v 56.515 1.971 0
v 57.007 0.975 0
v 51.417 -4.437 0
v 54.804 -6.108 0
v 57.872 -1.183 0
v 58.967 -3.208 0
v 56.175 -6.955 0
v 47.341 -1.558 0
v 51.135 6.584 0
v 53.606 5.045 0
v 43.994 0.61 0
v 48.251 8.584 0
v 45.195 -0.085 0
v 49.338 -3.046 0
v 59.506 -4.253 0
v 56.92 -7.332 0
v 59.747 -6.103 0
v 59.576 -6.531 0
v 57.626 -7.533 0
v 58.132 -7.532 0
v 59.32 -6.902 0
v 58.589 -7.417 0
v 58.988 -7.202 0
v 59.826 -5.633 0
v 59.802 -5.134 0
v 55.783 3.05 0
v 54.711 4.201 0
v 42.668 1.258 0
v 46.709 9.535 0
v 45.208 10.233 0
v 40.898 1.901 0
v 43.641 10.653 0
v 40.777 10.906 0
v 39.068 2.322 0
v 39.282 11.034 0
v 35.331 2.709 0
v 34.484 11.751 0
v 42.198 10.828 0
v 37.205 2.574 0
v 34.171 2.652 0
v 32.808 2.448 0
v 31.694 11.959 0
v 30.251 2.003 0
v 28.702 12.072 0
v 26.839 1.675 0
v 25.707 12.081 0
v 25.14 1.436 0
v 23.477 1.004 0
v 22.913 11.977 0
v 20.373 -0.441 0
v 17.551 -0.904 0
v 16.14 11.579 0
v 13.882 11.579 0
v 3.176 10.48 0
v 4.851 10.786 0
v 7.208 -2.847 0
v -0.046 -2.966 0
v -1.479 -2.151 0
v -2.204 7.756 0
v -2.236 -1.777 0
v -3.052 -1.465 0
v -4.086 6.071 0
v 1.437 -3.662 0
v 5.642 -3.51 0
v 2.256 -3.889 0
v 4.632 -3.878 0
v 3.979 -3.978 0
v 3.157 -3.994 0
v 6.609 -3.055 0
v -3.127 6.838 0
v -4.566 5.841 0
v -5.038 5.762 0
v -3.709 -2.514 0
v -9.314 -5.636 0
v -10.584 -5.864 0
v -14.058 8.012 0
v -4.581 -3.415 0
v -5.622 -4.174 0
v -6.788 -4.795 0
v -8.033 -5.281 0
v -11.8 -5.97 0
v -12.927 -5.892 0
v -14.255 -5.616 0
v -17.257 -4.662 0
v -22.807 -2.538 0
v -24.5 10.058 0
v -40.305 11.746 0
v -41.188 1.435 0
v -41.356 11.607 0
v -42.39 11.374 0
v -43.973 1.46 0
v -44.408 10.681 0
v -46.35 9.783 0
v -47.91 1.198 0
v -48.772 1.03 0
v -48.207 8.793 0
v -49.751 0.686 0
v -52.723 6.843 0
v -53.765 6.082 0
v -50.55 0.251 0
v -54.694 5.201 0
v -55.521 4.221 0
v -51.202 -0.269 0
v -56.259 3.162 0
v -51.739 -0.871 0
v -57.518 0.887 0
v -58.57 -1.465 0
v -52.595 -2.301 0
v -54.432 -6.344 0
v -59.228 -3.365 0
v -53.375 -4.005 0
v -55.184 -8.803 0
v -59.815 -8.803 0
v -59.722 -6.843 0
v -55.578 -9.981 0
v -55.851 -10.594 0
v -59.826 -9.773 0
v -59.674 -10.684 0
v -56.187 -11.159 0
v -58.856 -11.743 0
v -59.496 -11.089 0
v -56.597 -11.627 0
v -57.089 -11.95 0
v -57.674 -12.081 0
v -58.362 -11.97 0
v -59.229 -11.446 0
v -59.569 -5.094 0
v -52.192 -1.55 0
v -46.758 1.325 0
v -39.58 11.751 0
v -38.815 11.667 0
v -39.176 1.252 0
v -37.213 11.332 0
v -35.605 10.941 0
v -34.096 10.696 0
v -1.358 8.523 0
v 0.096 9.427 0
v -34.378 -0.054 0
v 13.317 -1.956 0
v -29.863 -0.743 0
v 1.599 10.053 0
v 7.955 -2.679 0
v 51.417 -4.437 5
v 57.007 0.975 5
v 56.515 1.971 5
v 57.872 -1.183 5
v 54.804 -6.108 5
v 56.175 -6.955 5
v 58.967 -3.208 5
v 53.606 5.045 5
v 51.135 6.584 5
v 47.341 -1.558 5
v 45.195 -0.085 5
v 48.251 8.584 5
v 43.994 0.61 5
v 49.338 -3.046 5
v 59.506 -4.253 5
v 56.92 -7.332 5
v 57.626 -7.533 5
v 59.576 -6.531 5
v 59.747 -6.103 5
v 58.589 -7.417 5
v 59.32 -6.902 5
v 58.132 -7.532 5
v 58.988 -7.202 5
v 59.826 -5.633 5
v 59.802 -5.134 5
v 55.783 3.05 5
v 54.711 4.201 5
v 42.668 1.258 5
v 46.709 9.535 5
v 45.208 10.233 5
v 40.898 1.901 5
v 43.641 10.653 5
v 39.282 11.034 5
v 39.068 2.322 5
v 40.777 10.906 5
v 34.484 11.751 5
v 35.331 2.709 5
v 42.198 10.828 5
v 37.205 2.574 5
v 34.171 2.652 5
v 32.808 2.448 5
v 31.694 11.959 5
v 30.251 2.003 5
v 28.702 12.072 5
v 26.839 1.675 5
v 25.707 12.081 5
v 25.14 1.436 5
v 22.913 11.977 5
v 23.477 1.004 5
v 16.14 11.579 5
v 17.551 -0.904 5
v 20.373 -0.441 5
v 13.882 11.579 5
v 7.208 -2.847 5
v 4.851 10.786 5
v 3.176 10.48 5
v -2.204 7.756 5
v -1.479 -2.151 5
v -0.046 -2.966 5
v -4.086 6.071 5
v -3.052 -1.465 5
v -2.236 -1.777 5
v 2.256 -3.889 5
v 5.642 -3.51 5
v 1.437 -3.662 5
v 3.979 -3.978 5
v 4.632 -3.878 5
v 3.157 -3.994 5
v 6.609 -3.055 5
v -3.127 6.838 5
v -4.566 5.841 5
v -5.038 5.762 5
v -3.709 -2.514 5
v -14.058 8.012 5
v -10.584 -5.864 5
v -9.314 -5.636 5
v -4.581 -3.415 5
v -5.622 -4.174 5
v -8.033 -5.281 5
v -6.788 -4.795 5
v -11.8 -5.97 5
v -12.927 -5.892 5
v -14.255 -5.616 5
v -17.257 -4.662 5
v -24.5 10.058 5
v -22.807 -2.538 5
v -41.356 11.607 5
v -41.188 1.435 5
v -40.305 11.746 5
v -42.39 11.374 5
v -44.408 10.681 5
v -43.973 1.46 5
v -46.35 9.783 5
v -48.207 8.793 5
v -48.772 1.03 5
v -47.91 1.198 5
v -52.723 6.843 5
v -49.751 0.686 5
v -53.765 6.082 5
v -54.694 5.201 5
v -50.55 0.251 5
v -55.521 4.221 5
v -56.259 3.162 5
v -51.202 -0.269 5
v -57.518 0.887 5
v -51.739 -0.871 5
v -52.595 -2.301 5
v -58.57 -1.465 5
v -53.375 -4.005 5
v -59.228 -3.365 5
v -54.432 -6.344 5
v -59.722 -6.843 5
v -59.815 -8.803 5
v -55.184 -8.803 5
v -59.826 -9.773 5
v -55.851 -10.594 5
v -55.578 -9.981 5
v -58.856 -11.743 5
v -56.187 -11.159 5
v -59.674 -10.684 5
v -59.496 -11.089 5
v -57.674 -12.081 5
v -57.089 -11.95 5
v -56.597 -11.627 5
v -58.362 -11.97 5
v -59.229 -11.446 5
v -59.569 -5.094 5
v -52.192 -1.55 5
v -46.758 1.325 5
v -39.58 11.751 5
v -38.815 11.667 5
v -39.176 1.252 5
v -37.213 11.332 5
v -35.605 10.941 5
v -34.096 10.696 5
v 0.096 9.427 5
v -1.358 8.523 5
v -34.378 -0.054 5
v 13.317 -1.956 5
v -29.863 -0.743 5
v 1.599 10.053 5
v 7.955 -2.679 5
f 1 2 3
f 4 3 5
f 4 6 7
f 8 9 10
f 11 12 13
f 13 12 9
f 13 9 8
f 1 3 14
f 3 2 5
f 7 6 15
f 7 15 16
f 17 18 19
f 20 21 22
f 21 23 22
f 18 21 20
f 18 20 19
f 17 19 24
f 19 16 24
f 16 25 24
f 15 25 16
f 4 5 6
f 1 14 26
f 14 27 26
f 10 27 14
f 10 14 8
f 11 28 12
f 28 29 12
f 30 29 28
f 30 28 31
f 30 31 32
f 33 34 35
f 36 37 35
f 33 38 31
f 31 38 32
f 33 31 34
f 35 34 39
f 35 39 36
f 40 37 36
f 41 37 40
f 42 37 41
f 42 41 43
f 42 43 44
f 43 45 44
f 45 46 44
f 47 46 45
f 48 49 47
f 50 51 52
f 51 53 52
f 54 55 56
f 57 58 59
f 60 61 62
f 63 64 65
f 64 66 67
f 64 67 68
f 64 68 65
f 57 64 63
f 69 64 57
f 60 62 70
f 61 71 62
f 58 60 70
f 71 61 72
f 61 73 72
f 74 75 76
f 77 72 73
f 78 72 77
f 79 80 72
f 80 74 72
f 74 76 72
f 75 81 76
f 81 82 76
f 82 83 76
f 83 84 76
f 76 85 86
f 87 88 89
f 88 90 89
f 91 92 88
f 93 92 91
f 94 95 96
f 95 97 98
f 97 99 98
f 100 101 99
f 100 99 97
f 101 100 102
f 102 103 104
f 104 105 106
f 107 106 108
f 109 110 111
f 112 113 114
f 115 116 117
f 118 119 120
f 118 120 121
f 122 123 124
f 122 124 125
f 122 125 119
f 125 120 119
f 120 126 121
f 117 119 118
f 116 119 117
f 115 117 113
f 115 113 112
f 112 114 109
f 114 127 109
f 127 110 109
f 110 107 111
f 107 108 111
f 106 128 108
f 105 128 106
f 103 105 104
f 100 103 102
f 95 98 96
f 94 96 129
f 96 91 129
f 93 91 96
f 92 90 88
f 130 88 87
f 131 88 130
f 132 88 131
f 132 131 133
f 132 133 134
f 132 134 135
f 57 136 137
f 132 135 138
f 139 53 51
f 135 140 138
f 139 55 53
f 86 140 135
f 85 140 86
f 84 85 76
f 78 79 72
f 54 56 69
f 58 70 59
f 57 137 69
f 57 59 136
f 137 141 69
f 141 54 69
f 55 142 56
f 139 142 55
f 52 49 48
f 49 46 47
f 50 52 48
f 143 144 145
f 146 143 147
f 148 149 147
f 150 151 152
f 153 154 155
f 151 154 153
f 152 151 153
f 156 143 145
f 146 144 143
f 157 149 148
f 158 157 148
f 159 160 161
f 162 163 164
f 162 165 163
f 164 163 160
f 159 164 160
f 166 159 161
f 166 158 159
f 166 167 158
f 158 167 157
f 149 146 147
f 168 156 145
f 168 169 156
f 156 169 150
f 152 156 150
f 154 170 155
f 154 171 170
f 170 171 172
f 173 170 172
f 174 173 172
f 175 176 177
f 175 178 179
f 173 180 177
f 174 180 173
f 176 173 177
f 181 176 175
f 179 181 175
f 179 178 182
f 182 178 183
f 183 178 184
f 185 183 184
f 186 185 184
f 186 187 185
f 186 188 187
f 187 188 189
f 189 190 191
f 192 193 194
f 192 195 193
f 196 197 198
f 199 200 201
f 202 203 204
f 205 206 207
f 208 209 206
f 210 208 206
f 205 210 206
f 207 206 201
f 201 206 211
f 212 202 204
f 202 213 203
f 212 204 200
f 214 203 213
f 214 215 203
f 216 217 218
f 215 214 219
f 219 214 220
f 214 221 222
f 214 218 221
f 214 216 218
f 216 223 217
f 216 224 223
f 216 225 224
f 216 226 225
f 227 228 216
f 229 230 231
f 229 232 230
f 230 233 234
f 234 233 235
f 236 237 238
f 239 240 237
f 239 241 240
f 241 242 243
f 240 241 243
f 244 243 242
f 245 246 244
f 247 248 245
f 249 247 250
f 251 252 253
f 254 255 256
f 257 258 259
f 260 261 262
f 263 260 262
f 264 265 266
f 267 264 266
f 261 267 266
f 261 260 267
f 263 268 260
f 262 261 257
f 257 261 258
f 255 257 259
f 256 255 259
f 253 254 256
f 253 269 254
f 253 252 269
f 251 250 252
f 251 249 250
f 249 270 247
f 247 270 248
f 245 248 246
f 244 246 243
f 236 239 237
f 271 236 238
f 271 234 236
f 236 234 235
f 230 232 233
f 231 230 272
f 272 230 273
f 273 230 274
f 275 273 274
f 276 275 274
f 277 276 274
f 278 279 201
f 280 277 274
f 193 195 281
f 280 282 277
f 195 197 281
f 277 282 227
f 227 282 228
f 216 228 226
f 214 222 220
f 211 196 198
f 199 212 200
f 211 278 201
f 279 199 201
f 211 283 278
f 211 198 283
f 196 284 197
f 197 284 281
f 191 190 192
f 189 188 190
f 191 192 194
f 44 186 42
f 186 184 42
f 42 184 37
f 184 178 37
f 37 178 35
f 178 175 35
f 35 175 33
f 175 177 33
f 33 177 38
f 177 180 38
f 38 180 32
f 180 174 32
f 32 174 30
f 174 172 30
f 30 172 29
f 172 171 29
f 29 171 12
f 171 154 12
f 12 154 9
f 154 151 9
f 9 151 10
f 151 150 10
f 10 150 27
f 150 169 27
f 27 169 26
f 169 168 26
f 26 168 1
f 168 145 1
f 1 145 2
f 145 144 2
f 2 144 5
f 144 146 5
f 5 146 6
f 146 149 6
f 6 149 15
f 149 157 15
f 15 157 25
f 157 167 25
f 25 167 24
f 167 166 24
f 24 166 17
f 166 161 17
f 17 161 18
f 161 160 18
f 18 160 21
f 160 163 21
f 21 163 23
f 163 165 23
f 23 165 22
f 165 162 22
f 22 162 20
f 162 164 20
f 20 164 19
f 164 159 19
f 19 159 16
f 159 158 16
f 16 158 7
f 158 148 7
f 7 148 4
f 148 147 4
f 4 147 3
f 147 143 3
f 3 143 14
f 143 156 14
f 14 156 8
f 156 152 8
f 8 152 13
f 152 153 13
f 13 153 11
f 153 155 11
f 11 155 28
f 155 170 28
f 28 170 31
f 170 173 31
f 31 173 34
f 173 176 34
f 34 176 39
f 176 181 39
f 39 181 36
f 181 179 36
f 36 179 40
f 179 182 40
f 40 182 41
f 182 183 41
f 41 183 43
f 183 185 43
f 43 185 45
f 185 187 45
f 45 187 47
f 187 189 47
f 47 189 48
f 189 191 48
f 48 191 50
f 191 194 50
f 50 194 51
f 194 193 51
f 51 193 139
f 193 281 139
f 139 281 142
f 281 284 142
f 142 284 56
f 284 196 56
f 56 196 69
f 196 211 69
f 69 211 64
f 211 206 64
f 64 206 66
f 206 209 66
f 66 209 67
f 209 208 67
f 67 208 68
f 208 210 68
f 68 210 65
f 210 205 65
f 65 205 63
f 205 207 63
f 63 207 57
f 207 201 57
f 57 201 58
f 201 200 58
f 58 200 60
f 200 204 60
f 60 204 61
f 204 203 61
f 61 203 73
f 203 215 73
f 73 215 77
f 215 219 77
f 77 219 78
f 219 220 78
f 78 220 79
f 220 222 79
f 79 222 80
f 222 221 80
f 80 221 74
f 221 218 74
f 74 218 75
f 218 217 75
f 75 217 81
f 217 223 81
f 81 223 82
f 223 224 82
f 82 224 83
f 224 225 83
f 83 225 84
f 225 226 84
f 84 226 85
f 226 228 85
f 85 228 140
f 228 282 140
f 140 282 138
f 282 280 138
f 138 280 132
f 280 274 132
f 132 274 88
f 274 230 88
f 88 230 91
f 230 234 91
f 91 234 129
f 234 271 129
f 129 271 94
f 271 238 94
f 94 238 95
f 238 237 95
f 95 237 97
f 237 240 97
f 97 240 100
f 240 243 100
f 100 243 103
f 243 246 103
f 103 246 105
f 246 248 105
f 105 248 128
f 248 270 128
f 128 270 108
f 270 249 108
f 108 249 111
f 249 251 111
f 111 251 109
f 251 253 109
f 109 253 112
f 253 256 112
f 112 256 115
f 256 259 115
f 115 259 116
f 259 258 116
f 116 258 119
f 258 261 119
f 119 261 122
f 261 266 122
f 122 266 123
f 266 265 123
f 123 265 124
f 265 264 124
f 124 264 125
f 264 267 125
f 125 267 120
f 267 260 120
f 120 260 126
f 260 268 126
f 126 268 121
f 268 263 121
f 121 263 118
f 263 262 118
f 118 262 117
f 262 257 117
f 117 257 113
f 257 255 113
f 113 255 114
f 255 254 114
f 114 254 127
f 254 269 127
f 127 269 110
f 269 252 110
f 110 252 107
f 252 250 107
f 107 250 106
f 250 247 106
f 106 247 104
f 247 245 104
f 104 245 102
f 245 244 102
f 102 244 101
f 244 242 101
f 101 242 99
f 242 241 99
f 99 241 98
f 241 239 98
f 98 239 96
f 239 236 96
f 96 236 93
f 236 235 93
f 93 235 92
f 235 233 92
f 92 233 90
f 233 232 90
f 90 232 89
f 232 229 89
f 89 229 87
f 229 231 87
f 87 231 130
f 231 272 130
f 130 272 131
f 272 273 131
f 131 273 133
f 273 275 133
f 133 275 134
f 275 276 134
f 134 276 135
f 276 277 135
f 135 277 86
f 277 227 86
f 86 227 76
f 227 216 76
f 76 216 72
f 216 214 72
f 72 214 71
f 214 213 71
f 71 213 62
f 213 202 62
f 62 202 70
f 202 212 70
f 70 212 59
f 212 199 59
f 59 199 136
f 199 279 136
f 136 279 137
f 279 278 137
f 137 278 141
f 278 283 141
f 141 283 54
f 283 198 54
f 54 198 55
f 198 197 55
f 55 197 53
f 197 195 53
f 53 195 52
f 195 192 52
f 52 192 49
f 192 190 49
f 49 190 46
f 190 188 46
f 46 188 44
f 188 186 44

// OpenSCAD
module fridaKalohBrow(h)
{
  scale([25.4/90, -25.4/90, 1]) union()
  {
    linear_extrude(height=h)
      polygon([[-41.812656,21.152012],[-45.803359,20.878887],[-50.510781,19.898887],[-61.147656,16.519512],[-80.812656,8.992012],[-105.812656,2.632012],[-121.812656,0.192012],[-138.812656,-4.437988],[-145.940625,-5.083770],[-155.808906,-5.171738],[-165.679062,-4.695332],[-169.759082,-4.243437],[-172.812656,-3.647988],[-176.281621,-2.429023],[-179.114375,-0.890020],[-181.424707,0.953438],[-183.326406,3.085762],[-184.933262,5.491367],[-186.359062,8.154668],[-189.122656,14.192012],[-192.867656,22.478262],[-195.532656,31.192012],[-196.930625,35.366699],[-197.897441,37.538770],[-199.088906,39.539512],[-200.539590,41.198066],[-202.284062,42.343574],[-204.356895,42.805176],[-206.792656,42.412012],[-208.545059,41.609570],[-209.865625,40.556230],[-210.811895,39.291719],[-211.441406,37.855762],[-211.980312,34.628418],[-211.942656,31.192012],[-211.613594,24.246699],[-211.072656,18.049512],[-209.864219,11.923574],[-207.532656,5.192012],[-203.804375,-3.141582],[-199.343906,-11.204238],[-196.728652,-14.956719],[-193.797812,-18.428770],[-190.507207,-21.549492],[-186.812656,-24.247988],[-170.812656,-31.157988],[-164.232656,-34.664082],[-157.352656,-37.846738],[-150.202656,-40.300020],[-146.535781,-41.126289],[-142.812656,-41.617988],[-140.245586,-41.636562],[-137.532969,-41.339082],[-131.857656,-40.151738],[-126.159844,-38.767520],[-120.812656,-37.897988],[-86.812656,-35.637988],[-49.812656,-28.387988],[-17.852656,-20.417988],[-16.177129,-20.695488],[-14.477812,-21.512988],[-11.081406,-24.227988],[-7.810625,-27.482988],[-4.812656,-30.197988],[0.339063,-33.401582],[5.666094,-35.621738],[11.253750,-37.135020],[17.187344,-38.217988],[49.187344,-41.027988],[57.187344,-41.027988],[81.187344,-42.437988],[91.088125,-42.805176],[101.698594,-42.772988],[112.303437,-42.373301],[122.187344,-41.637988],[139.187344,-39.097988],[144.486562,-38.642988],[149.518594,-38.367988],[154.635000,-37.747988],[160.187344,-36.257988],[165.503438,-33.784863],[170.968594,-30.415488],[181.187344,-23.327988],[189.943594,-17.874238],[193.859063,-14.886270],[197.657344,-10.807988],[200.250781,-6.983457],[201.994844,-3.454238],[205.057344,4.192012],[208.938594,11.368262],[210.849688,15.069355],[211.897344,18.192012],[211.980313,19.958750],[211.702344,21.625293],[211.094375,23.141133],[210.187344,24.455762],[209.012188,25.518672],[207.599844,26.279355],[205.981250,26.687305],[204.187344,26.692012],[201.685469,25.980293],[199.044844,24.643262],[194.187344,21.642012],[182.187344,15.722012],[174.820781,10.794199],[167.744844,5.519512],[160.140156,0.301074],[155.883477,-2.161074],[151.187344,-4.457988],[144.912813,-6.734863],[138.431094,-8.227988],[131.827500,-9.121113],[125.187344,-9.597988],[121.078281,-9.397207],[116.247344,-8.674238],[107.187344,-7.097988],[95.097344,-5.935488],[89.077656,-5.087051],[83.187344,-3.557988],[72.187344,1.562012],[62.187344,3.202012],[47.187344,6.932012],[28.187344,9.492012],[25.541035,10.086816],[23.417500,10.824824],[19.991094,12.437012],[16.412813,13.741699],[14.099434,14.095332],[11.187344,14.152012],[7.993965,13.779727],[5.093438,12.975605],[-0.161406,10.508262],[-5.241875,7.622793],[-7.924434,6.296016],[-10.812656,5.192012],[-13.142598,8.906387],[-16.231562,12.101387],[-19.920762,14.791074],[-24.051406,16.989512],[-28.464707,18.710762],[-33.001875,19.968887],[-37.504121,20.777949],[-41.812656,21.152012]]);
  }
}

fridaKalohBrow(5);
